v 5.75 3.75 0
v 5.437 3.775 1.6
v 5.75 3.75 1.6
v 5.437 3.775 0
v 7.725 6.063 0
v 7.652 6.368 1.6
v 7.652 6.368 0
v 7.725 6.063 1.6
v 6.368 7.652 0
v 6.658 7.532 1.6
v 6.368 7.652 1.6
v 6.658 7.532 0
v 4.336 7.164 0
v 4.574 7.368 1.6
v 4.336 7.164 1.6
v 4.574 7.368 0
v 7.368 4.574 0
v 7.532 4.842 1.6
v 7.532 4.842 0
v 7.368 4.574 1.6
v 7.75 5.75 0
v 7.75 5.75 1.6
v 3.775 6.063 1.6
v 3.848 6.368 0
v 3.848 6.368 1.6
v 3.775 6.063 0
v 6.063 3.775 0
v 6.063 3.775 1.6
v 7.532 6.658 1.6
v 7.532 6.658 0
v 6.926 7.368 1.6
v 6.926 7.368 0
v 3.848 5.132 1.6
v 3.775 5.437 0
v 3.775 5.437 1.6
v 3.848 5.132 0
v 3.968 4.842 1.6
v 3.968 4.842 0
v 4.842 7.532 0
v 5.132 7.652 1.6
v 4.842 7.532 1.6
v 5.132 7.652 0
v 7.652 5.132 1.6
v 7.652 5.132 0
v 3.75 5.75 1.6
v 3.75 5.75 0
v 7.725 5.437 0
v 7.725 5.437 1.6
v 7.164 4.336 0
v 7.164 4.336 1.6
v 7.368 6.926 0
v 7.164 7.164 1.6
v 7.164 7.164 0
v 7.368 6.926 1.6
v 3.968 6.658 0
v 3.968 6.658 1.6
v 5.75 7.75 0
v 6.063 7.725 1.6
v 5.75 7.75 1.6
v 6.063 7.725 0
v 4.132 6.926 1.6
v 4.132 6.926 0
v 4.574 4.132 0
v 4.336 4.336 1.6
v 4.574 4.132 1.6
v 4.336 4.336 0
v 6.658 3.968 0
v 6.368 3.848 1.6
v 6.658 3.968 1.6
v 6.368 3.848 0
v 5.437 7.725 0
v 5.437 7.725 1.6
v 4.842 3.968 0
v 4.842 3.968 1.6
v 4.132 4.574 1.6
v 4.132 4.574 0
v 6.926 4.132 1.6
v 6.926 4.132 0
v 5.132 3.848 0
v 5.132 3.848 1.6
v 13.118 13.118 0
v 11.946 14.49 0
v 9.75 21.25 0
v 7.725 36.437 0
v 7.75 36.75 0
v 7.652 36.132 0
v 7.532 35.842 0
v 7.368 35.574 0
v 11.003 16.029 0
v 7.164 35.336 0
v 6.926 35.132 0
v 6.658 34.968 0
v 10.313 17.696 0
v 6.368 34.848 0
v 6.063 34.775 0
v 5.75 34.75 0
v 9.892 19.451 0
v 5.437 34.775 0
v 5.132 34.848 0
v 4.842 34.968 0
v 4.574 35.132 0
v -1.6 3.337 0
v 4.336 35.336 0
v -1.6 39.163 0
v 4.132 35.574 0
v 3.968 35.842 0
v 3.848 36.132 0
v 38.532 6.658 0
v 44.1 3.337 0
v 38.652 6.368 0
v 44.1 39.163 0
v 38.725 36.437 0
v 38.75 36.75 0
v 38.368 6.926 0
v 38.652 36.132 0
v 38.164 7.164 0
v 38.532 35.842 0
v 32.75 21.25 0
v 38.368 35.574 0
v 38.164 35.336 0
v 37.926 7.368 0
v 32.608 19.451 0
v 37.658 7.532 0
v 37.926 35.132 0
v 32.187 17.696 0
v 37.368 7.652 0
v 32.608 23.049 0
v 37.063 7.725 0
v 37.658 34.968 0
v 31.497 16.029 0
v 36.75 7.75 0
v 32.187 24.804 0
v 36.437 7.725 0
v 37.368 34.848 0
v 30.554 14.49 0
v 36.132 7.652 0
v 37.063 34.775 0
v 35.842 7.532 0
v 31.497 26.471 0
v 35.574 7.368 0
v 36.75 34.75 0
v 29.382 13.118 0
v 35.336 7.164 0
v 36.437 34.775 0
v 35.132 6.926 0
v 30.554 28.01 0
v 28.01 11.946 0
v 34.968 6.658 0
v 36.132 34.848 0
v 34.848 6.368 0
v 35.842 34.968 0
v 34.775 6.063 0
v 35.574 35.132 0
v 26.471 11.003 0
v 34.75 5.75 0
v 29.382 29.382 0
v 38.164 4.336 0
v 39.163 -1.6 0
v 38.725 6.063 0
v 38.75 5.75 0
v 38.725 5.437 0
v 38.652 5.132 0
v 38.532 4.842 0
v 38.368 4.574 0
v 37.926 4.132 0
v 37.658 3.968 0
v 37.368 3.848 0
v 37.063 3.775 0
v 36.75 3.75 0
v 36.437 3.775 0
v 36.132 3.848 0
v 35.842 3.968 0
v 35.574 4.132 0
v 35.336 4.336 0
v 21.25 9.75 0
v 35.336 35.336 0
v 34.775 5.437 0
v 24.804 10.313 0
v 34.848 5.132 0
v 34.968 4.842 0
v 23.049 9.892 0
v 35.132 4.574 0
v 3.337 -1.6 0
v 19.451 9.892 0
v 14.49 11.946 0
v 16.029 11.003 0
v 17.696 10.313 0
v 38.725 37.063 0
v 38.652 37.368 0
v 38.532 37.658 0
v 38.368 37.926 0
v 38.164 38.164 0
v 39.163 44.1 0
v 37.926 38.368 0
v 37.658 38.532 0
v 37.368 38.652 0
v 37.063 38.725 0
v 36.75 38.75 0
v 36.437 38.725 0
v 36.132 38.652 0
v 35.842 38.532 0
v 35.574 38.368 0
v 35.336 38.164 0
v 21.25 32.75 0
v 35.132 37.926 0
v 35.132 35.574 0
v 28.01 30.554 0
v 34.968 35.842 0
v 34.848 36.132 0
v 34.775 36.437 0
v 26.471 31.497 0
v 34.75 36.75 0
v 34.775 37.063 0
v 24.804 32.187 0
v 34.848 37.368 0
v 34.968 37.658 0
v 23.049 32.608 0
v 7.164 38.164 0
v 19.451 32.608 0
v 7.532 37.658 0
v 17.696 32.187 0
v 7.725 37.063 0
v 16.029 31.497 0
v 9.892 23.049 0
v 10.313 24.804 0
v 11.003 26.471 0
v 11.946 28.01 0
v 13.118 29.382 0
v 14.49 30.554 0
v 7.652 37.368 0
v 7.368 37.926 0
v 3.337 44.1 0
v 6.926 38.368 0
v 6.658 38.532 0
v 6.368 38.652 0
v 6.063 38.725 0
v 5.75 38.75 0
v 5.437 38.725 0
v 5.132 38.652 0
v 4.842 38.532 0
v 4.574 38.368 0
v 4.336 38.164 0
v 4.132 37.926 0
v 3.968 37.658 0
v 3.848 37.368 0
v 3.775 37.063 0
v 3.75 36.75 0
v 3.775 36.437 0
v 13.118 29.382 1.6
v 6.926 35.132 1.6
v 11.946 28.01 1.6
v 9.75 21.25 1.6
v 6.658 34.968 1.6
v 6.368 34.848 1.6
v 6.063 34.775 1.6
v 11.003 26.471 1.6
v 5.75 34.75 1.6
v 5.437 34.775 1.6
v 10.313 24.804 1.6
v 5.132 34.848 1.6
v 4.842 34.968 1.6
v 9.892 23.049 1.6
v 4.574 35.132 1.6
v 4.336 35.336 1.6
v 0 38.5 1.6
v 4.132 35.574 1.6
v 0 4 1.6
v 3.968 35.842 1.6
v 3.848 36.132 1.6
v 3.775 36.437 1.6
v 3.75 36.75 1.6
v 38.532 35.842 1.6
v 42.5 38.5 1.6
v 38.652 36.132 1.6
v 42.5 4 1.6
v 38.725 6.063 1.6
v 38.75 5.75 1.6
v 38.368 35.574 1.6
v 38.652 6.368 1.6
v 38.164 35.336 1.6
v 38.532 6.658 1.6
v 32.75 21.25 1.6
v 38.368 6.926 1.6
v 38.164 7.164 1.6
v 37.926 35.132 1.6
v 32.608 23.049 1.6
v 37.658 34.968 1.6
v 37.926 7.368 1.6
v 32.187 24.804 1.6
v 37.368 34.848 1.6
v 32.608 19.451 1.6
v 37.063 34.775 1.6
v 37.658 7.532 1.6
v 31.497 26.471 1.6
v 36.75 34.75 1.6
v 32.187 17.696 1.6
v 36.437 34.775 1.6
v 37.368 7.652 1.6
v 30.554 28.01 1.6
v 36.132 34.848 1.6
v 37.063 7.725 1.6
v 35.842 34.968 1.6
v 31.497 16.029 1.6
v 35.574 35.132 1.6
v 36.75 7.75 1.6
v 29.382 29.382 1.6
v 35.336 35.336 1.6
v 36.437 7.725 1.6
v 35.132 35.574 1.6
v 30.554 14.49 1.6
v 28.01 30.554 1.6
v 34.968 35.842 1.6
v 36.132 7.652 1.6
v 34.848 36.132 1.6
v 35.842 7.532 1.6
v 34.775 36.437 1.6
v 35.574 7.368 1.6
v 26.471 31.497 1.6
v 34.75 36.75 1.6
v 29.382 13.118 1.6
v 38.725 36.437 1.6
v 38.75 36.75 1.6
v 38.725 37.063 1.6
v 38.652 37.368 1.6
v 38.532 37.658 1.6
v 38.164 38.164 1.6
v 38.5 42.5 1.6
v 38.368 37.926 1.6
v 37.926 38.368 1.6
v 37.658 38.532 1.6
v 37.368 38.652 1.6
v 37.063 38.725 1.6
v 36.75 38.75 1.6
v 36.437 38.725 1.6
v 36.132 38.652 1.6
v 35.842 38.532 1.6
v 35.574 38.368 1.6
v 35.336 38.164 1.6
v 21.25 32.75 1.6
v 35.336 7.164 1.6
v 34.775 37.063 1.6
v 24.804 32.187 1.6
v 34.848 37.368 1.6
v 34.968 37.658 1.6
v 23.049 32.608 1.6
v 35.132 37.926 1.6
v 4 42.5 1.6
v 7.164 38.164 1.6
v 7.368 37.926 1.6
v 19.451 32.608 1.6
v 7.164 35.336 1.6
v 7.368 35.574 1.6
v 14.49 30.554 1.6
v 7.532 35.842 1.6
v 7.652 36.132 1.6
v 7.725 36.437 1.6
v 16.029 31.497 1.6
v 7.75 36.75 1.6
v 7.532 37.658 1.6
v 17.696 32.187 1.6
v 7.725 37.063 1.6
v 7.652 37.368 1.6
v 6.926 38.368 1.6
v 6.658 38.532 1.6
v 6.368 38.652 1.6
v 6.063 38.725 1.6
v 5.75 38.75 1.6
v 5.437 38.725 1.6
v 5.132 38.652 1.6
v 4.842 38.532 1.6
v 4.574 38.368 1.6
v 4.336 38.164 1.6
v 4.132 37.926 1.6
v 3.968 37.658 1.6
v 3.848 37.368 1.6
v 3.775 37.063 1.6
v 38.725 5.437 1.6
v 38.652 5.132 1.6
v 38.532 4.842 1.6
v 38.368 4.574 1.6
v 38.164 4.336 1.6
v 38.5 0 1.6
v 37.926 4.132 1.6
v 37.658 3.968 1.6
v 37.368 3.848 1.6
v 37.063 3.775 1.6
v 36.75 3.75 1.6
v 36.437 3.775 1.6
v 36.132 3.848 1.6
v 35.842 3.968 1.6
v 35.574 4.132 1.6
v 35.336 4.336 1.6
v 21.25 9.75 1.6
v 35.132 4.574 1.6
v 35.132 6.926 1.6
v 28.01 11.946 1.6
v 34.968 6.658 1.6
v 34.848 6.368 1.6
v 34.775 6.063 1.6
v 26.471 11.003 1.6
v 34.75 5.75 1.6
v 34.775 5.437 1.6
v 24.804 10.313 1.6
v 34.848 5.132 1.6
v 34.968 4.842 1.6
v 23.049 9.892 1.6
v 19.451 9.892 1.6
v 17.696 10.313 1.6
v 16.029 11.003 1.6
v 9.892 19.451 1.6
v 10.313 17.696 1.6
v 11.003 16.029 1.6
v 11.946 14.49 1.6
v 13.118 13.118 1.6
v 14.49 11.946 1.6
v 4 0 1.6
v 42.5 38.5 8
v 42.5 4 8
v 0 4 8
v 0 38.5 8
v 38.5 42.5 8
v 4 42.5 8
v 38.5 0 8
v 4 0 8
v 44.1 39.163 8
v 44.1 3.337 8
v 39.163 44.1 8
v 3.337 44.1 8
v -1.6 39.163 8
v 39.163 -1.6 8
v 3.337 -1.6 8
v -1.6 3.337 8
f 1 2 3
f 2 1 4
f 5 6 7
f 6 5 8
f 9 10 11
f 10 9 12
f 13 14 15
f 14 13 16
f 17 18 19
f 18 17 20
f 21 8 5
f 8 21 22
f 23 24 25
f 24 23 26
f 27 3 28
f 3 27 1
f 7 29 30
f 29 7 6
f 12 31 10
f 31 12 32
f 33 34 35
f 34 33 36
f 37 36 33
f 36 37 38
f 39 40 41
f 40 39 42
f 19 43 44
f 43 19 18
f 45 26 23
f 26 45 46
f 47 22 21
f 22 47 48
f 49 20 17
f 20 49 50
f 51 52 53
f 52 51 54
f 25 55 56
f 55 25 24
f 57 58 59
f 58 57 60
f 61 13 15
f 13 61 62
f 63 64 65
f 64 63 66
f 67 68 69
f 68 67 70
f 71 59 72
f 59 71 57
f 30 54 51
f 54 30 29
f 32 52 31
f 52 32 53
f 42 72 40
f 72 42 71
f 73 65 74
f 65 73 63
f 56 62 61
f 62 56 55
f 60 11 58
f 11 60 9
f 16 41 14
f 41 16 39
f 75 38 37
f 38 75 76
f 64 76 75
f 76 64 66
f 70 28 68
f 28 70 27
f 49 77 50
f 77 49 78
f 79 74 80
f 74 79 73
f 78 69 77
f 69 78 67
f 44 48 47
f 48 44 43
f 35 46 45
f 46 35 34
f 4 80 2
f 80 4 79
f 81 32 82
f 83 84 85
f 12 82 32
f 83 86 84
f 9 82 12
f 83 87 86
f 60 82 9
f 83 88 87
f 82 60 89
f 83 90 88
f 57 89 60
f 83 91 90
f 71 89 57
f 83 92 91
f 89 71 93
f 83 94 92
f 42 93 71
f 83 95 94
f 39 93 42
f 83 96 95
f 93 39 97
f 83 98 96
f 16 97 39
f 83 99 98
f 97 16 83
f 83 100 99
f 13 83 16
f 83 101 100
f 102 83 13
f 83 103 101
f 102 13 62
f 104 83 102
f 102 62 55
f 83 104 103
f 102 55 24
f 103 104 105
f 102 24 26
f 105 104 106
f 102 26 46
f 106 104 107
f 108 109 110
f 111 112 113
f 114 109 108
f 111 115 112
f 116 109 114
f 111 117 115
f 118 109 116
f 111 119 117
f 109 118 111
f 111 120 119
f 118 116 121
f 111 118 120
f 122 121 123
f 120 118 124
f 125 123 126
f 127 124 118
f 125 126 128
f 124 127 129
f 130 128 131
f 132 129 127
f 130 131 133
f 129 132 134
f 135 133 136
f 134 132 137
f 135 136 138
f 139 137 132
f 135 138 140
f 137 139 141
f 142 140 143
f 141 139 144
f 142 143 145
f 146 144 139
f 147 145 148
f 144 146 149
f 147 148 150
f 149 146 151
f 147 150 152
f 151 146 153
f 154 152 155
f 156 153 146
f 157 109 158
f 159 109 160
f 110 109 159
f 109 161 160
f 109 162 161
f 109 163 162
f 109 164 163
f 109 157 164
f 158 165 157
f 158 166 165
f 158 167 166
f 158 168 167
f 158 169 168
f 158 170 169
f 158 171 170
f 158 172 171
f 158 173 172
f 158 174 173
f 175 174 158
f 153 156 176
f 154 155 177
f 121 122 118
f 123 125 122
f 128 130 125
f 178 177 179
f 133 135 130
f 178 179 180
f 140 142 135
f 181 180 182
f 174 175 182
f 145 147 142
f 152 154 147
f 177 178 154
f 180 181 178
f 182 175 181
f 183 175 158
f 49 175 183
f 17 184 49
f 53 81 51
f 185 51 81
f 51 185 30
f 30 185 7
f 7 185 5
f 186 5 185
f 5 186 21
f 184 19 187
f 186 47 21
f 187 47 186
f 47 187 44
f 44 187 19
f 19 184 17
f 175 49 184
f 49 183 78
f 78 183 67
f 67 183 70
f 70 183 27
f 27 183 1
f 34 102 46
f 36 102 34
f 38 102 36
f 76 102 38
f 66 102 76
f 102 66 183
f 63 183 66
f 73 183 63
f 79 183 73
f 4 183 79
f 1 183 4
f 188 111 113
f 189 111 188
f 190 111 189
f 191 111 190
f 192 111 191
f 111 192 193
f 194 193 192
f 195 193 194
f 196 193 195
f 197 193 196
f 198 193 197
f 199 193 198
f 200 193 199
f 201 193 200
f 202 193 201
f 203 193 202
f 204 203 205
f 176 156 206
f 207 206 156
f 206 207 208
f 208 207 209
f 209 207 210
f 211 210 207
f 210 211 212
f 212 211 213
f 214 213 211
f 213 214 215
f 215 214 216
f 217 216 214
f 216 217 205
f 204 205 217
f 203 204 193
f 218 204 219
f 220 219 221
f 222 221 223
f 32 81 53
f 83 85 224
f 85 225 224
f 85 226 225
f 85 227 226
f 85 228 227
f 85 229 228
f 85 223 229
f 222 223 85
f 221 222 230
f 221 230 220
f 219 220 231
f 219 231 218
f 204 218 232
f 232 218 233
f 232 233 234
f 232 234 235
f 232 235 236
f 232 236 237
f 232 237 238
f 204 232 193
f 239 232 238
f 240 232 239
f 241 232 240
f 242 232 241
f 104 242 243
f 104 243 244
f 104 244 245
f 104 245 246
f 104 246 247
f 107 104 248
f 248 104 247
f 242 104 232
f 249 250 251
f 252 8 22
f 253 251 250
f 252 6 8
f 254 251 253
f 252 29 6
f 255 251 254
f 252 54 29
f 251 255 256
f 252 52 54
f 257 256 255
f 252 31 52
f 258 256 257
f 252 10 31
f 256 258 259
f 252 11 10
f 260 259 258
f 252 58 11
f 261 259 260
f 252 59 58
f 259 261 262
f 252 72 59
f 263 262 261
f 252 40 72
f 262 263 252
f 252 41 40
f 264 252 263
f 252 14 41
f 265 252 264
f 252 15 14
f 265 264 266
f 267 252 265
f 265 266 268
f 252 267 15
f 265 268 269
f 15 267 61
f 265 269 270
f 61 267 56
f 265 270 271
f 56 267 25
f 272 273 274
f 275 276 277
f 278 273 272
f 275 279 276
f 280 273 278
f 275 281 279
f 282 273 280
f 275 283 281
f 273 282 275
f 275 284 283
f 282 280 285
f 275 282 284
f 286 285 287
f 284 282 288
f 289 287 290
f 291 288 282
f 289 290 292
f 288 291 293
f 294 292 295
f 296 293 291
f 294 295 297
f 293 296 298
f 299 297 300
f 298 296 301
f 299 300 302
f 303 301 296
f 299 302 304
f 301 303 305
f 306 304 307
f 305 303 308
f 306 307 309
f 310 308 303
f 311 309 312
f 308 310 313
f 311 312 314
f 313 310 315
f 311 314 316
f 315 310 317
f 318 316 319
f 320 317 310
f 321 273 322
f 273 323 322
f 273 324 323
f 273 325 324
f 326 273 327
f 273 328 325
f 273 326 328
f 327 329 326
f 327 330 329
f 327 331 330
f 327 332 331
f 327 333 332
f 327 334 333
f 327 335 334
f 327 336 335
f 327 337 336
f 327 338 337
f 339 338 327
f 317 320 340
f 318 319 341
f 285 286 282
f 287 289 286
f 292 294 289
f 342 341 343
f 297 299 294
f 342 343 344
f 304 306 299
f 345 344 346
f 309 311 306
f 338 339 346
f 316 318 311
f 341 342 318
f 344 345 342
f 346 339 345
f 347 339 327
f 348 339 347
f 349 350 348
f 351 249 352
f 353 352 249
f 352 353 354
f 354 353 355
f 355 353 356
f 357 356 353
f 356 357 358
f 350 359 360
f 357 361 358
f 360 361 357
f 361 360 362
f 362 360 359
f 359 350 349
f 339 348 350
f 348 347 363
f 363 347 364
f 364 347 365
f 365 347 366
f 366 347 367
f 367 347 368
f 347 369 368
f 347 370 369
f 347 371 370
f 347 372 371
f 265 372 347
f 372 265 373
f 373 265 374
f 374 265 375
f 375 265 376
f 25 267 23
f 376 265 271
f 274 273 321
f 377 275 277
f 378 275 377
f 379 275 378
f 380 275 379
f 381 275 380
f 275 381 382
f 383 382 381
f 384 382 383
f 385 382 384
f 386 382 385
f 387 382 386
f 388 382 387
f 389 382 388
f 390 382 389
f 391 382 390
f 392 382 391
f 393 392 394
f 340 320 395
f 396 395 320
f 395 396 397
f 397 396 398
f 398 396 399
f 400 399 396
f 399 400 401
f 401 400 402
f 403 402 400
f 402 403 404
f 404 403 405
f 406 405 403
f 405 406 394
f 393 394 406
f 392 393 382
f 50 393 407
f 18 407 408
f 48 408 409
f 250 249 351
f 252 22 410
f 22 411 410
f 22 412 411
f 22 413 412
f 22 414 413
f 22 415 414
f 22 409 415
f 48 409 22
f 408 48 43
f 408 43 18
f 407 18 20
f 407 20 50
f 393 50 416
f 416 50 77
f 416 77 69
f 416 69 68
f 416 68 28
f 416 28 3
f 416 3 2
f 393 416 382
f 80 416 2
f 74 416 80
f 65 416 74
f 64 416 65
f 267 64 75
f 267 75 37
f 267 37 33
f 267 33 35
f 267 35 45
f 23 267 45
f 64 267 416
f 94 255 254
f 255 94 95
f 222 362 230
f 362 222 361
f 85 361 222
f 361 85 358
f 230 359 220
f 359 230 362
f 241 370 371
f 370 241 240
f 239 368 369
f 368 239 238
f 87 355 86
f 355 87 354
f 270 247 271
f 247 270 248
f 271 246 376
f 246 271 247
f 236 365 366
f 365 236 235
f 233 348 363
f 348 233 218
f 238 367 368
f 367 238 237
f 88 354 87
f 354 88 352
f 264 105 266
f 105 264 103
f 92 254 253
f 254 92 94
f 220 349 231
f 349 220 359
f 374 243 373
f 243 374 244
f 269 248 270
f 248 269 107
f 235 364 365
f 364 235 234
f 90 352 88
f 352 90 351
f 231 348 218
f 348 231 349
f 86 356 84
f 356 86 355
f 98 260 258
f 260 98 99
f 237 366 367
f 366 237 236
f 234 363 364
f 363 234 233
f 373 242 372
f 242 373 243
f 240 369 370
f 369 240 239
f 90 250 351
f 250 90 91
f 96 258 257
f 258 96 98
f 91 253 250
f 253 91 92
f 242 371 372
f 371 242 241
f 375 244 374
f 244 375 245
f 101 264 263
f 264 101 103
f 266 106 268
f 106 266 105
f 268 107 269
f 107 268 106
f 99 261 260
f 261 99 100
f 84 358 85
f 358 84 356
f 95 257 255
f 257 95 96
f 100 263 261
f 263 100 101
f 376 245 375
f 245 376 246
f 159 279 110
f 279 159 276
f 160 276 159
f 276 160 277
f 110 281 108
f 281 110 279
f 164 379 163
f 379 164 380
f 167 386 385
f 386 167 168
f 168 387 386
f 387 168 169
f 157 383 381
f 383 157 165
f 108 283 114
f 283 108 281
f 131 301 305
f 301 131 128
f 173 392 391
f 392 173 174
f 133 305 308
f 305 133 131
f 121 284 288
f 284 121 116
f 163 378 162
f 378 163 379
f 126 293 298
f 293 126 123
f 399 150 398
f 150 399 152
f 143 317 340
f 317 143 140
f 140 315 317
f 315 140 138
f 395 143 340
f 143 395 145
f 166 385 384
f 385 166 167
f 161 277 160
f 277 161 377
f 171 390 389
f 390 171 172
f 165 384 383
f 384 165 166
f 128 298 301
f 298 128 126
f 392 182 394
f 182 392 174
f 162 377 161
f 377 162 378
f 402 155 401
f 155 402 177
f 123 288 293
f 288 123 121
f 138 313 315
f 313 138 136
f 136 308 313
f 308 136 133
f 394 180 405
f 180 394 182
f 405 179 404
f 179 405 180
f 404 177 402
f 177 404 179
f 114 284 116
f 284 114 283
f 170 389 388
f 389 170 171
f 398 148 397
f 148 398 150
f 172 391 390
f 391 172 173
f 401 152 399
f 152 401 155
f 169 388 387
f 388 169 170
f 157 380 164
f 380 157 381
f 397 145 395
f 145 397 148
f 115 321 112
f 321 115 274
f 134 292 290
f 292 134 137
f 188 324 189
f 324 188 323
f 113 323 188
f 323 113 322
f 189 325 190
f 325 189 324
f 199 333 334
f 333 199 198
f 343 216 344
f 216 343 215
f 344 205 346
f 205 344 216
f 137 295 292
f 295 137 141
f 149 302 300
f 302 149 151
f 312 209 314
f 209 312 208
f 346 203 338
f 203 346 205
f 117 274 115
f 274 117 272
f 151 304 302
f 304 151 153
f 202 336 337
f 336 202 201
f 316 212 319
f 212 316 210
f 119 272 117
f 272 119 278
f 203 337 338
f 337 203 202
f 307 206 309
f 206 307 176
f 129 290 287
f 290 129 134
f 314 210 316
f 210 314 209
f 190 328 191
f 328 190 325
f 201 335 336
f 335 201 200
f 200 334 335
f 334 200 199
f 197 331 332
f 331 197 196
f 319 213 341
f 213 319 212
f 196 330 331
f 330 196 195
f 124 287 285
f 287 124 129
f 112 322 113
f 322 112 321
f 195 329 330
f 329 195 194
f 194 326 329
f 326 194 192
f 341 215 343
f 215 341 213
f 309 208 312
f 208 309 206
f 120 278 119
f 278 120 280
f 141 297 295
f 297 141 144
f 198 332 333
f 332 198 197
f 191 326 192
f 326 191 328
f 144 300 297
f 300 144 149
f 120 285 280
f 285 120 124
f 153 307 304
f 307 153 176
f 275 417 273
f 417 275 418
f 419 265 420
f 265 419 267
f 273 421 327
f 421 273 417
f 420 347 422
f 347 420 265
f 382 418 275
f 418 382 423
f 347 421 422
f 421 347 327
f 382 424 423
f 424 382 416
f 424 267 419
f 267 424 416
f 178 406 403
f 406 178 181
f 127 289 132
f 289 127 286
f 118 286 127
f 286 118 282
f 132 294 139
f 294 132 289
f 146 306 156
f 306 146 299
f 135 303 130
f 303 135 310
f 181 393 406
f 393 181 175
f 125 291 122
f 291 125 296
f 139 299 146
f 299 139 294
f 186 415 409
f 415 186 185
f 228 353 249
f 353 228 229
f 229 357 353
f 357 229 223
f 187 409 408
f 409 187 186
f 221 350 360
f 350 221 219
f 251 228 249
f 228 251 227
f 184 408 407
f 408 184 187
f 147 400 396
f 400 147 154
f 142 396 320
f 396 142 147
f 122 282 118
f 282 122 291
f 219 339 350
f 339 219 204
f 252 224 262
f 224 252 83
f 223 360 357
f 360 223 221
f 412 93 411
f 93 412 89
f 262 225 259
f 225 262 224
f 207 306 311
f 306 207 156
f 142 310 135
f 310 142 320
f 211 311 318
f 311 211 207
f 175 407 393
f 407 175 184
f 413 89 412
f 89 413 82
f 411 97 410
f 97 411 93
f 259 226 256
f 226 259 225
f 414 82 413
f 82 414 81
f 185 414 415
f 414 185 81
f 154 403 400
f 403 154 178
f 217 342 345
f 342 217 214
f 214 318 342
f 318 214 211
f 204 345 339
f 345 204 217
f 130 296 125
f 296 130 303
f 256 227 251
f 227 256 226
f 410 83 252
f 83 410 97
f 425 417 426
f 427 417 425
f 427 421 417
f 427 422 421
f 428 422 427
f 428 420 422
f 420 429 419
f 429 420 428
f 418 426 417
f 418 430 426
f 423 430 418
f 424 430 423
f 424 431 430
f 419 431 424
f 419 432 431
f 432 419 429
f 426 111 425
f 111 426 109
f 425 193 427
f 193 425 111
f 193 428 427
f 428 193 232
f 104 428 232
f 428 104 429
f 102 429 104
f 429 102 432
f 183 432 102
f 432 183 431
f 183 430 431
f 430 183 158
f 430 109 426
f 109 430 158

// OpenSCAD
$fn = 40;
//sleeveHeight=12; //final height
sleeveHeight=8;
motor_sideLength = 42.5;
sleeveThickness=1.6;

hubDia=23;
facePlateHeight=1.6;
holeDia=4;
holeGap=31;

chamferSize=4;

module isoceles(s=chamferSize) {
    polygon(points = [[0,s], [s,0], [0,0]]);
};

module quadHole(h=facePlateHeight, gap=holeGap, d=holeDia) {
    for (x = [0,gap], y = [0,gap]) {
        translate([x,y,0]) cylinder(h=h, d=d);
    }
};
//quadHole();

module facePlate(h=facePlateHeight, l=motor_sideLength, g=holeGap, hd=hubDia) {
    difference() {
        linear_extrude(h) {
            motorOutline();
        };
        translate([(l-g)/2, (l-g)/2, 0]) quadHole();
        translate([l/2,l/2,0]) cylinder(h=h, d=hd);
    };
}
facePlate();

module chamfers(l=motor_sideLength, s=chamferSize){
    translate([0,0,0])
        rotate([0,0,0]) isoceles();
    translate([0,l,0])
        rotate([0,0,-90]) isoceles();
    translate([l,0,0])
        rotate([0,0,90]) isoceles();
    translate([l,l,0])
        rotate([0,0,180]) isoceles();
};
//chamfers();
//

module motorOutline(l=motor_sideLength, c=chamferSize) {
    difference() {
        square(l, center=false);
        chamfers(l,c);
    };
};
//motorOutline();

//isoceles(chamferSize);
module sleeve(l=motor_sideLength, t=sleeveThickness, h=sleeveHeight, c=chamferSize){
    linear_extrude(height=h) {
        difference() {
            offset(delta=sleeveThickness) { motorOutline(); };
            motorOutline();
        };
    };
    //offset(delta=t, chamfer=true) { square(size[0], center=true); };
};
sleeve();
